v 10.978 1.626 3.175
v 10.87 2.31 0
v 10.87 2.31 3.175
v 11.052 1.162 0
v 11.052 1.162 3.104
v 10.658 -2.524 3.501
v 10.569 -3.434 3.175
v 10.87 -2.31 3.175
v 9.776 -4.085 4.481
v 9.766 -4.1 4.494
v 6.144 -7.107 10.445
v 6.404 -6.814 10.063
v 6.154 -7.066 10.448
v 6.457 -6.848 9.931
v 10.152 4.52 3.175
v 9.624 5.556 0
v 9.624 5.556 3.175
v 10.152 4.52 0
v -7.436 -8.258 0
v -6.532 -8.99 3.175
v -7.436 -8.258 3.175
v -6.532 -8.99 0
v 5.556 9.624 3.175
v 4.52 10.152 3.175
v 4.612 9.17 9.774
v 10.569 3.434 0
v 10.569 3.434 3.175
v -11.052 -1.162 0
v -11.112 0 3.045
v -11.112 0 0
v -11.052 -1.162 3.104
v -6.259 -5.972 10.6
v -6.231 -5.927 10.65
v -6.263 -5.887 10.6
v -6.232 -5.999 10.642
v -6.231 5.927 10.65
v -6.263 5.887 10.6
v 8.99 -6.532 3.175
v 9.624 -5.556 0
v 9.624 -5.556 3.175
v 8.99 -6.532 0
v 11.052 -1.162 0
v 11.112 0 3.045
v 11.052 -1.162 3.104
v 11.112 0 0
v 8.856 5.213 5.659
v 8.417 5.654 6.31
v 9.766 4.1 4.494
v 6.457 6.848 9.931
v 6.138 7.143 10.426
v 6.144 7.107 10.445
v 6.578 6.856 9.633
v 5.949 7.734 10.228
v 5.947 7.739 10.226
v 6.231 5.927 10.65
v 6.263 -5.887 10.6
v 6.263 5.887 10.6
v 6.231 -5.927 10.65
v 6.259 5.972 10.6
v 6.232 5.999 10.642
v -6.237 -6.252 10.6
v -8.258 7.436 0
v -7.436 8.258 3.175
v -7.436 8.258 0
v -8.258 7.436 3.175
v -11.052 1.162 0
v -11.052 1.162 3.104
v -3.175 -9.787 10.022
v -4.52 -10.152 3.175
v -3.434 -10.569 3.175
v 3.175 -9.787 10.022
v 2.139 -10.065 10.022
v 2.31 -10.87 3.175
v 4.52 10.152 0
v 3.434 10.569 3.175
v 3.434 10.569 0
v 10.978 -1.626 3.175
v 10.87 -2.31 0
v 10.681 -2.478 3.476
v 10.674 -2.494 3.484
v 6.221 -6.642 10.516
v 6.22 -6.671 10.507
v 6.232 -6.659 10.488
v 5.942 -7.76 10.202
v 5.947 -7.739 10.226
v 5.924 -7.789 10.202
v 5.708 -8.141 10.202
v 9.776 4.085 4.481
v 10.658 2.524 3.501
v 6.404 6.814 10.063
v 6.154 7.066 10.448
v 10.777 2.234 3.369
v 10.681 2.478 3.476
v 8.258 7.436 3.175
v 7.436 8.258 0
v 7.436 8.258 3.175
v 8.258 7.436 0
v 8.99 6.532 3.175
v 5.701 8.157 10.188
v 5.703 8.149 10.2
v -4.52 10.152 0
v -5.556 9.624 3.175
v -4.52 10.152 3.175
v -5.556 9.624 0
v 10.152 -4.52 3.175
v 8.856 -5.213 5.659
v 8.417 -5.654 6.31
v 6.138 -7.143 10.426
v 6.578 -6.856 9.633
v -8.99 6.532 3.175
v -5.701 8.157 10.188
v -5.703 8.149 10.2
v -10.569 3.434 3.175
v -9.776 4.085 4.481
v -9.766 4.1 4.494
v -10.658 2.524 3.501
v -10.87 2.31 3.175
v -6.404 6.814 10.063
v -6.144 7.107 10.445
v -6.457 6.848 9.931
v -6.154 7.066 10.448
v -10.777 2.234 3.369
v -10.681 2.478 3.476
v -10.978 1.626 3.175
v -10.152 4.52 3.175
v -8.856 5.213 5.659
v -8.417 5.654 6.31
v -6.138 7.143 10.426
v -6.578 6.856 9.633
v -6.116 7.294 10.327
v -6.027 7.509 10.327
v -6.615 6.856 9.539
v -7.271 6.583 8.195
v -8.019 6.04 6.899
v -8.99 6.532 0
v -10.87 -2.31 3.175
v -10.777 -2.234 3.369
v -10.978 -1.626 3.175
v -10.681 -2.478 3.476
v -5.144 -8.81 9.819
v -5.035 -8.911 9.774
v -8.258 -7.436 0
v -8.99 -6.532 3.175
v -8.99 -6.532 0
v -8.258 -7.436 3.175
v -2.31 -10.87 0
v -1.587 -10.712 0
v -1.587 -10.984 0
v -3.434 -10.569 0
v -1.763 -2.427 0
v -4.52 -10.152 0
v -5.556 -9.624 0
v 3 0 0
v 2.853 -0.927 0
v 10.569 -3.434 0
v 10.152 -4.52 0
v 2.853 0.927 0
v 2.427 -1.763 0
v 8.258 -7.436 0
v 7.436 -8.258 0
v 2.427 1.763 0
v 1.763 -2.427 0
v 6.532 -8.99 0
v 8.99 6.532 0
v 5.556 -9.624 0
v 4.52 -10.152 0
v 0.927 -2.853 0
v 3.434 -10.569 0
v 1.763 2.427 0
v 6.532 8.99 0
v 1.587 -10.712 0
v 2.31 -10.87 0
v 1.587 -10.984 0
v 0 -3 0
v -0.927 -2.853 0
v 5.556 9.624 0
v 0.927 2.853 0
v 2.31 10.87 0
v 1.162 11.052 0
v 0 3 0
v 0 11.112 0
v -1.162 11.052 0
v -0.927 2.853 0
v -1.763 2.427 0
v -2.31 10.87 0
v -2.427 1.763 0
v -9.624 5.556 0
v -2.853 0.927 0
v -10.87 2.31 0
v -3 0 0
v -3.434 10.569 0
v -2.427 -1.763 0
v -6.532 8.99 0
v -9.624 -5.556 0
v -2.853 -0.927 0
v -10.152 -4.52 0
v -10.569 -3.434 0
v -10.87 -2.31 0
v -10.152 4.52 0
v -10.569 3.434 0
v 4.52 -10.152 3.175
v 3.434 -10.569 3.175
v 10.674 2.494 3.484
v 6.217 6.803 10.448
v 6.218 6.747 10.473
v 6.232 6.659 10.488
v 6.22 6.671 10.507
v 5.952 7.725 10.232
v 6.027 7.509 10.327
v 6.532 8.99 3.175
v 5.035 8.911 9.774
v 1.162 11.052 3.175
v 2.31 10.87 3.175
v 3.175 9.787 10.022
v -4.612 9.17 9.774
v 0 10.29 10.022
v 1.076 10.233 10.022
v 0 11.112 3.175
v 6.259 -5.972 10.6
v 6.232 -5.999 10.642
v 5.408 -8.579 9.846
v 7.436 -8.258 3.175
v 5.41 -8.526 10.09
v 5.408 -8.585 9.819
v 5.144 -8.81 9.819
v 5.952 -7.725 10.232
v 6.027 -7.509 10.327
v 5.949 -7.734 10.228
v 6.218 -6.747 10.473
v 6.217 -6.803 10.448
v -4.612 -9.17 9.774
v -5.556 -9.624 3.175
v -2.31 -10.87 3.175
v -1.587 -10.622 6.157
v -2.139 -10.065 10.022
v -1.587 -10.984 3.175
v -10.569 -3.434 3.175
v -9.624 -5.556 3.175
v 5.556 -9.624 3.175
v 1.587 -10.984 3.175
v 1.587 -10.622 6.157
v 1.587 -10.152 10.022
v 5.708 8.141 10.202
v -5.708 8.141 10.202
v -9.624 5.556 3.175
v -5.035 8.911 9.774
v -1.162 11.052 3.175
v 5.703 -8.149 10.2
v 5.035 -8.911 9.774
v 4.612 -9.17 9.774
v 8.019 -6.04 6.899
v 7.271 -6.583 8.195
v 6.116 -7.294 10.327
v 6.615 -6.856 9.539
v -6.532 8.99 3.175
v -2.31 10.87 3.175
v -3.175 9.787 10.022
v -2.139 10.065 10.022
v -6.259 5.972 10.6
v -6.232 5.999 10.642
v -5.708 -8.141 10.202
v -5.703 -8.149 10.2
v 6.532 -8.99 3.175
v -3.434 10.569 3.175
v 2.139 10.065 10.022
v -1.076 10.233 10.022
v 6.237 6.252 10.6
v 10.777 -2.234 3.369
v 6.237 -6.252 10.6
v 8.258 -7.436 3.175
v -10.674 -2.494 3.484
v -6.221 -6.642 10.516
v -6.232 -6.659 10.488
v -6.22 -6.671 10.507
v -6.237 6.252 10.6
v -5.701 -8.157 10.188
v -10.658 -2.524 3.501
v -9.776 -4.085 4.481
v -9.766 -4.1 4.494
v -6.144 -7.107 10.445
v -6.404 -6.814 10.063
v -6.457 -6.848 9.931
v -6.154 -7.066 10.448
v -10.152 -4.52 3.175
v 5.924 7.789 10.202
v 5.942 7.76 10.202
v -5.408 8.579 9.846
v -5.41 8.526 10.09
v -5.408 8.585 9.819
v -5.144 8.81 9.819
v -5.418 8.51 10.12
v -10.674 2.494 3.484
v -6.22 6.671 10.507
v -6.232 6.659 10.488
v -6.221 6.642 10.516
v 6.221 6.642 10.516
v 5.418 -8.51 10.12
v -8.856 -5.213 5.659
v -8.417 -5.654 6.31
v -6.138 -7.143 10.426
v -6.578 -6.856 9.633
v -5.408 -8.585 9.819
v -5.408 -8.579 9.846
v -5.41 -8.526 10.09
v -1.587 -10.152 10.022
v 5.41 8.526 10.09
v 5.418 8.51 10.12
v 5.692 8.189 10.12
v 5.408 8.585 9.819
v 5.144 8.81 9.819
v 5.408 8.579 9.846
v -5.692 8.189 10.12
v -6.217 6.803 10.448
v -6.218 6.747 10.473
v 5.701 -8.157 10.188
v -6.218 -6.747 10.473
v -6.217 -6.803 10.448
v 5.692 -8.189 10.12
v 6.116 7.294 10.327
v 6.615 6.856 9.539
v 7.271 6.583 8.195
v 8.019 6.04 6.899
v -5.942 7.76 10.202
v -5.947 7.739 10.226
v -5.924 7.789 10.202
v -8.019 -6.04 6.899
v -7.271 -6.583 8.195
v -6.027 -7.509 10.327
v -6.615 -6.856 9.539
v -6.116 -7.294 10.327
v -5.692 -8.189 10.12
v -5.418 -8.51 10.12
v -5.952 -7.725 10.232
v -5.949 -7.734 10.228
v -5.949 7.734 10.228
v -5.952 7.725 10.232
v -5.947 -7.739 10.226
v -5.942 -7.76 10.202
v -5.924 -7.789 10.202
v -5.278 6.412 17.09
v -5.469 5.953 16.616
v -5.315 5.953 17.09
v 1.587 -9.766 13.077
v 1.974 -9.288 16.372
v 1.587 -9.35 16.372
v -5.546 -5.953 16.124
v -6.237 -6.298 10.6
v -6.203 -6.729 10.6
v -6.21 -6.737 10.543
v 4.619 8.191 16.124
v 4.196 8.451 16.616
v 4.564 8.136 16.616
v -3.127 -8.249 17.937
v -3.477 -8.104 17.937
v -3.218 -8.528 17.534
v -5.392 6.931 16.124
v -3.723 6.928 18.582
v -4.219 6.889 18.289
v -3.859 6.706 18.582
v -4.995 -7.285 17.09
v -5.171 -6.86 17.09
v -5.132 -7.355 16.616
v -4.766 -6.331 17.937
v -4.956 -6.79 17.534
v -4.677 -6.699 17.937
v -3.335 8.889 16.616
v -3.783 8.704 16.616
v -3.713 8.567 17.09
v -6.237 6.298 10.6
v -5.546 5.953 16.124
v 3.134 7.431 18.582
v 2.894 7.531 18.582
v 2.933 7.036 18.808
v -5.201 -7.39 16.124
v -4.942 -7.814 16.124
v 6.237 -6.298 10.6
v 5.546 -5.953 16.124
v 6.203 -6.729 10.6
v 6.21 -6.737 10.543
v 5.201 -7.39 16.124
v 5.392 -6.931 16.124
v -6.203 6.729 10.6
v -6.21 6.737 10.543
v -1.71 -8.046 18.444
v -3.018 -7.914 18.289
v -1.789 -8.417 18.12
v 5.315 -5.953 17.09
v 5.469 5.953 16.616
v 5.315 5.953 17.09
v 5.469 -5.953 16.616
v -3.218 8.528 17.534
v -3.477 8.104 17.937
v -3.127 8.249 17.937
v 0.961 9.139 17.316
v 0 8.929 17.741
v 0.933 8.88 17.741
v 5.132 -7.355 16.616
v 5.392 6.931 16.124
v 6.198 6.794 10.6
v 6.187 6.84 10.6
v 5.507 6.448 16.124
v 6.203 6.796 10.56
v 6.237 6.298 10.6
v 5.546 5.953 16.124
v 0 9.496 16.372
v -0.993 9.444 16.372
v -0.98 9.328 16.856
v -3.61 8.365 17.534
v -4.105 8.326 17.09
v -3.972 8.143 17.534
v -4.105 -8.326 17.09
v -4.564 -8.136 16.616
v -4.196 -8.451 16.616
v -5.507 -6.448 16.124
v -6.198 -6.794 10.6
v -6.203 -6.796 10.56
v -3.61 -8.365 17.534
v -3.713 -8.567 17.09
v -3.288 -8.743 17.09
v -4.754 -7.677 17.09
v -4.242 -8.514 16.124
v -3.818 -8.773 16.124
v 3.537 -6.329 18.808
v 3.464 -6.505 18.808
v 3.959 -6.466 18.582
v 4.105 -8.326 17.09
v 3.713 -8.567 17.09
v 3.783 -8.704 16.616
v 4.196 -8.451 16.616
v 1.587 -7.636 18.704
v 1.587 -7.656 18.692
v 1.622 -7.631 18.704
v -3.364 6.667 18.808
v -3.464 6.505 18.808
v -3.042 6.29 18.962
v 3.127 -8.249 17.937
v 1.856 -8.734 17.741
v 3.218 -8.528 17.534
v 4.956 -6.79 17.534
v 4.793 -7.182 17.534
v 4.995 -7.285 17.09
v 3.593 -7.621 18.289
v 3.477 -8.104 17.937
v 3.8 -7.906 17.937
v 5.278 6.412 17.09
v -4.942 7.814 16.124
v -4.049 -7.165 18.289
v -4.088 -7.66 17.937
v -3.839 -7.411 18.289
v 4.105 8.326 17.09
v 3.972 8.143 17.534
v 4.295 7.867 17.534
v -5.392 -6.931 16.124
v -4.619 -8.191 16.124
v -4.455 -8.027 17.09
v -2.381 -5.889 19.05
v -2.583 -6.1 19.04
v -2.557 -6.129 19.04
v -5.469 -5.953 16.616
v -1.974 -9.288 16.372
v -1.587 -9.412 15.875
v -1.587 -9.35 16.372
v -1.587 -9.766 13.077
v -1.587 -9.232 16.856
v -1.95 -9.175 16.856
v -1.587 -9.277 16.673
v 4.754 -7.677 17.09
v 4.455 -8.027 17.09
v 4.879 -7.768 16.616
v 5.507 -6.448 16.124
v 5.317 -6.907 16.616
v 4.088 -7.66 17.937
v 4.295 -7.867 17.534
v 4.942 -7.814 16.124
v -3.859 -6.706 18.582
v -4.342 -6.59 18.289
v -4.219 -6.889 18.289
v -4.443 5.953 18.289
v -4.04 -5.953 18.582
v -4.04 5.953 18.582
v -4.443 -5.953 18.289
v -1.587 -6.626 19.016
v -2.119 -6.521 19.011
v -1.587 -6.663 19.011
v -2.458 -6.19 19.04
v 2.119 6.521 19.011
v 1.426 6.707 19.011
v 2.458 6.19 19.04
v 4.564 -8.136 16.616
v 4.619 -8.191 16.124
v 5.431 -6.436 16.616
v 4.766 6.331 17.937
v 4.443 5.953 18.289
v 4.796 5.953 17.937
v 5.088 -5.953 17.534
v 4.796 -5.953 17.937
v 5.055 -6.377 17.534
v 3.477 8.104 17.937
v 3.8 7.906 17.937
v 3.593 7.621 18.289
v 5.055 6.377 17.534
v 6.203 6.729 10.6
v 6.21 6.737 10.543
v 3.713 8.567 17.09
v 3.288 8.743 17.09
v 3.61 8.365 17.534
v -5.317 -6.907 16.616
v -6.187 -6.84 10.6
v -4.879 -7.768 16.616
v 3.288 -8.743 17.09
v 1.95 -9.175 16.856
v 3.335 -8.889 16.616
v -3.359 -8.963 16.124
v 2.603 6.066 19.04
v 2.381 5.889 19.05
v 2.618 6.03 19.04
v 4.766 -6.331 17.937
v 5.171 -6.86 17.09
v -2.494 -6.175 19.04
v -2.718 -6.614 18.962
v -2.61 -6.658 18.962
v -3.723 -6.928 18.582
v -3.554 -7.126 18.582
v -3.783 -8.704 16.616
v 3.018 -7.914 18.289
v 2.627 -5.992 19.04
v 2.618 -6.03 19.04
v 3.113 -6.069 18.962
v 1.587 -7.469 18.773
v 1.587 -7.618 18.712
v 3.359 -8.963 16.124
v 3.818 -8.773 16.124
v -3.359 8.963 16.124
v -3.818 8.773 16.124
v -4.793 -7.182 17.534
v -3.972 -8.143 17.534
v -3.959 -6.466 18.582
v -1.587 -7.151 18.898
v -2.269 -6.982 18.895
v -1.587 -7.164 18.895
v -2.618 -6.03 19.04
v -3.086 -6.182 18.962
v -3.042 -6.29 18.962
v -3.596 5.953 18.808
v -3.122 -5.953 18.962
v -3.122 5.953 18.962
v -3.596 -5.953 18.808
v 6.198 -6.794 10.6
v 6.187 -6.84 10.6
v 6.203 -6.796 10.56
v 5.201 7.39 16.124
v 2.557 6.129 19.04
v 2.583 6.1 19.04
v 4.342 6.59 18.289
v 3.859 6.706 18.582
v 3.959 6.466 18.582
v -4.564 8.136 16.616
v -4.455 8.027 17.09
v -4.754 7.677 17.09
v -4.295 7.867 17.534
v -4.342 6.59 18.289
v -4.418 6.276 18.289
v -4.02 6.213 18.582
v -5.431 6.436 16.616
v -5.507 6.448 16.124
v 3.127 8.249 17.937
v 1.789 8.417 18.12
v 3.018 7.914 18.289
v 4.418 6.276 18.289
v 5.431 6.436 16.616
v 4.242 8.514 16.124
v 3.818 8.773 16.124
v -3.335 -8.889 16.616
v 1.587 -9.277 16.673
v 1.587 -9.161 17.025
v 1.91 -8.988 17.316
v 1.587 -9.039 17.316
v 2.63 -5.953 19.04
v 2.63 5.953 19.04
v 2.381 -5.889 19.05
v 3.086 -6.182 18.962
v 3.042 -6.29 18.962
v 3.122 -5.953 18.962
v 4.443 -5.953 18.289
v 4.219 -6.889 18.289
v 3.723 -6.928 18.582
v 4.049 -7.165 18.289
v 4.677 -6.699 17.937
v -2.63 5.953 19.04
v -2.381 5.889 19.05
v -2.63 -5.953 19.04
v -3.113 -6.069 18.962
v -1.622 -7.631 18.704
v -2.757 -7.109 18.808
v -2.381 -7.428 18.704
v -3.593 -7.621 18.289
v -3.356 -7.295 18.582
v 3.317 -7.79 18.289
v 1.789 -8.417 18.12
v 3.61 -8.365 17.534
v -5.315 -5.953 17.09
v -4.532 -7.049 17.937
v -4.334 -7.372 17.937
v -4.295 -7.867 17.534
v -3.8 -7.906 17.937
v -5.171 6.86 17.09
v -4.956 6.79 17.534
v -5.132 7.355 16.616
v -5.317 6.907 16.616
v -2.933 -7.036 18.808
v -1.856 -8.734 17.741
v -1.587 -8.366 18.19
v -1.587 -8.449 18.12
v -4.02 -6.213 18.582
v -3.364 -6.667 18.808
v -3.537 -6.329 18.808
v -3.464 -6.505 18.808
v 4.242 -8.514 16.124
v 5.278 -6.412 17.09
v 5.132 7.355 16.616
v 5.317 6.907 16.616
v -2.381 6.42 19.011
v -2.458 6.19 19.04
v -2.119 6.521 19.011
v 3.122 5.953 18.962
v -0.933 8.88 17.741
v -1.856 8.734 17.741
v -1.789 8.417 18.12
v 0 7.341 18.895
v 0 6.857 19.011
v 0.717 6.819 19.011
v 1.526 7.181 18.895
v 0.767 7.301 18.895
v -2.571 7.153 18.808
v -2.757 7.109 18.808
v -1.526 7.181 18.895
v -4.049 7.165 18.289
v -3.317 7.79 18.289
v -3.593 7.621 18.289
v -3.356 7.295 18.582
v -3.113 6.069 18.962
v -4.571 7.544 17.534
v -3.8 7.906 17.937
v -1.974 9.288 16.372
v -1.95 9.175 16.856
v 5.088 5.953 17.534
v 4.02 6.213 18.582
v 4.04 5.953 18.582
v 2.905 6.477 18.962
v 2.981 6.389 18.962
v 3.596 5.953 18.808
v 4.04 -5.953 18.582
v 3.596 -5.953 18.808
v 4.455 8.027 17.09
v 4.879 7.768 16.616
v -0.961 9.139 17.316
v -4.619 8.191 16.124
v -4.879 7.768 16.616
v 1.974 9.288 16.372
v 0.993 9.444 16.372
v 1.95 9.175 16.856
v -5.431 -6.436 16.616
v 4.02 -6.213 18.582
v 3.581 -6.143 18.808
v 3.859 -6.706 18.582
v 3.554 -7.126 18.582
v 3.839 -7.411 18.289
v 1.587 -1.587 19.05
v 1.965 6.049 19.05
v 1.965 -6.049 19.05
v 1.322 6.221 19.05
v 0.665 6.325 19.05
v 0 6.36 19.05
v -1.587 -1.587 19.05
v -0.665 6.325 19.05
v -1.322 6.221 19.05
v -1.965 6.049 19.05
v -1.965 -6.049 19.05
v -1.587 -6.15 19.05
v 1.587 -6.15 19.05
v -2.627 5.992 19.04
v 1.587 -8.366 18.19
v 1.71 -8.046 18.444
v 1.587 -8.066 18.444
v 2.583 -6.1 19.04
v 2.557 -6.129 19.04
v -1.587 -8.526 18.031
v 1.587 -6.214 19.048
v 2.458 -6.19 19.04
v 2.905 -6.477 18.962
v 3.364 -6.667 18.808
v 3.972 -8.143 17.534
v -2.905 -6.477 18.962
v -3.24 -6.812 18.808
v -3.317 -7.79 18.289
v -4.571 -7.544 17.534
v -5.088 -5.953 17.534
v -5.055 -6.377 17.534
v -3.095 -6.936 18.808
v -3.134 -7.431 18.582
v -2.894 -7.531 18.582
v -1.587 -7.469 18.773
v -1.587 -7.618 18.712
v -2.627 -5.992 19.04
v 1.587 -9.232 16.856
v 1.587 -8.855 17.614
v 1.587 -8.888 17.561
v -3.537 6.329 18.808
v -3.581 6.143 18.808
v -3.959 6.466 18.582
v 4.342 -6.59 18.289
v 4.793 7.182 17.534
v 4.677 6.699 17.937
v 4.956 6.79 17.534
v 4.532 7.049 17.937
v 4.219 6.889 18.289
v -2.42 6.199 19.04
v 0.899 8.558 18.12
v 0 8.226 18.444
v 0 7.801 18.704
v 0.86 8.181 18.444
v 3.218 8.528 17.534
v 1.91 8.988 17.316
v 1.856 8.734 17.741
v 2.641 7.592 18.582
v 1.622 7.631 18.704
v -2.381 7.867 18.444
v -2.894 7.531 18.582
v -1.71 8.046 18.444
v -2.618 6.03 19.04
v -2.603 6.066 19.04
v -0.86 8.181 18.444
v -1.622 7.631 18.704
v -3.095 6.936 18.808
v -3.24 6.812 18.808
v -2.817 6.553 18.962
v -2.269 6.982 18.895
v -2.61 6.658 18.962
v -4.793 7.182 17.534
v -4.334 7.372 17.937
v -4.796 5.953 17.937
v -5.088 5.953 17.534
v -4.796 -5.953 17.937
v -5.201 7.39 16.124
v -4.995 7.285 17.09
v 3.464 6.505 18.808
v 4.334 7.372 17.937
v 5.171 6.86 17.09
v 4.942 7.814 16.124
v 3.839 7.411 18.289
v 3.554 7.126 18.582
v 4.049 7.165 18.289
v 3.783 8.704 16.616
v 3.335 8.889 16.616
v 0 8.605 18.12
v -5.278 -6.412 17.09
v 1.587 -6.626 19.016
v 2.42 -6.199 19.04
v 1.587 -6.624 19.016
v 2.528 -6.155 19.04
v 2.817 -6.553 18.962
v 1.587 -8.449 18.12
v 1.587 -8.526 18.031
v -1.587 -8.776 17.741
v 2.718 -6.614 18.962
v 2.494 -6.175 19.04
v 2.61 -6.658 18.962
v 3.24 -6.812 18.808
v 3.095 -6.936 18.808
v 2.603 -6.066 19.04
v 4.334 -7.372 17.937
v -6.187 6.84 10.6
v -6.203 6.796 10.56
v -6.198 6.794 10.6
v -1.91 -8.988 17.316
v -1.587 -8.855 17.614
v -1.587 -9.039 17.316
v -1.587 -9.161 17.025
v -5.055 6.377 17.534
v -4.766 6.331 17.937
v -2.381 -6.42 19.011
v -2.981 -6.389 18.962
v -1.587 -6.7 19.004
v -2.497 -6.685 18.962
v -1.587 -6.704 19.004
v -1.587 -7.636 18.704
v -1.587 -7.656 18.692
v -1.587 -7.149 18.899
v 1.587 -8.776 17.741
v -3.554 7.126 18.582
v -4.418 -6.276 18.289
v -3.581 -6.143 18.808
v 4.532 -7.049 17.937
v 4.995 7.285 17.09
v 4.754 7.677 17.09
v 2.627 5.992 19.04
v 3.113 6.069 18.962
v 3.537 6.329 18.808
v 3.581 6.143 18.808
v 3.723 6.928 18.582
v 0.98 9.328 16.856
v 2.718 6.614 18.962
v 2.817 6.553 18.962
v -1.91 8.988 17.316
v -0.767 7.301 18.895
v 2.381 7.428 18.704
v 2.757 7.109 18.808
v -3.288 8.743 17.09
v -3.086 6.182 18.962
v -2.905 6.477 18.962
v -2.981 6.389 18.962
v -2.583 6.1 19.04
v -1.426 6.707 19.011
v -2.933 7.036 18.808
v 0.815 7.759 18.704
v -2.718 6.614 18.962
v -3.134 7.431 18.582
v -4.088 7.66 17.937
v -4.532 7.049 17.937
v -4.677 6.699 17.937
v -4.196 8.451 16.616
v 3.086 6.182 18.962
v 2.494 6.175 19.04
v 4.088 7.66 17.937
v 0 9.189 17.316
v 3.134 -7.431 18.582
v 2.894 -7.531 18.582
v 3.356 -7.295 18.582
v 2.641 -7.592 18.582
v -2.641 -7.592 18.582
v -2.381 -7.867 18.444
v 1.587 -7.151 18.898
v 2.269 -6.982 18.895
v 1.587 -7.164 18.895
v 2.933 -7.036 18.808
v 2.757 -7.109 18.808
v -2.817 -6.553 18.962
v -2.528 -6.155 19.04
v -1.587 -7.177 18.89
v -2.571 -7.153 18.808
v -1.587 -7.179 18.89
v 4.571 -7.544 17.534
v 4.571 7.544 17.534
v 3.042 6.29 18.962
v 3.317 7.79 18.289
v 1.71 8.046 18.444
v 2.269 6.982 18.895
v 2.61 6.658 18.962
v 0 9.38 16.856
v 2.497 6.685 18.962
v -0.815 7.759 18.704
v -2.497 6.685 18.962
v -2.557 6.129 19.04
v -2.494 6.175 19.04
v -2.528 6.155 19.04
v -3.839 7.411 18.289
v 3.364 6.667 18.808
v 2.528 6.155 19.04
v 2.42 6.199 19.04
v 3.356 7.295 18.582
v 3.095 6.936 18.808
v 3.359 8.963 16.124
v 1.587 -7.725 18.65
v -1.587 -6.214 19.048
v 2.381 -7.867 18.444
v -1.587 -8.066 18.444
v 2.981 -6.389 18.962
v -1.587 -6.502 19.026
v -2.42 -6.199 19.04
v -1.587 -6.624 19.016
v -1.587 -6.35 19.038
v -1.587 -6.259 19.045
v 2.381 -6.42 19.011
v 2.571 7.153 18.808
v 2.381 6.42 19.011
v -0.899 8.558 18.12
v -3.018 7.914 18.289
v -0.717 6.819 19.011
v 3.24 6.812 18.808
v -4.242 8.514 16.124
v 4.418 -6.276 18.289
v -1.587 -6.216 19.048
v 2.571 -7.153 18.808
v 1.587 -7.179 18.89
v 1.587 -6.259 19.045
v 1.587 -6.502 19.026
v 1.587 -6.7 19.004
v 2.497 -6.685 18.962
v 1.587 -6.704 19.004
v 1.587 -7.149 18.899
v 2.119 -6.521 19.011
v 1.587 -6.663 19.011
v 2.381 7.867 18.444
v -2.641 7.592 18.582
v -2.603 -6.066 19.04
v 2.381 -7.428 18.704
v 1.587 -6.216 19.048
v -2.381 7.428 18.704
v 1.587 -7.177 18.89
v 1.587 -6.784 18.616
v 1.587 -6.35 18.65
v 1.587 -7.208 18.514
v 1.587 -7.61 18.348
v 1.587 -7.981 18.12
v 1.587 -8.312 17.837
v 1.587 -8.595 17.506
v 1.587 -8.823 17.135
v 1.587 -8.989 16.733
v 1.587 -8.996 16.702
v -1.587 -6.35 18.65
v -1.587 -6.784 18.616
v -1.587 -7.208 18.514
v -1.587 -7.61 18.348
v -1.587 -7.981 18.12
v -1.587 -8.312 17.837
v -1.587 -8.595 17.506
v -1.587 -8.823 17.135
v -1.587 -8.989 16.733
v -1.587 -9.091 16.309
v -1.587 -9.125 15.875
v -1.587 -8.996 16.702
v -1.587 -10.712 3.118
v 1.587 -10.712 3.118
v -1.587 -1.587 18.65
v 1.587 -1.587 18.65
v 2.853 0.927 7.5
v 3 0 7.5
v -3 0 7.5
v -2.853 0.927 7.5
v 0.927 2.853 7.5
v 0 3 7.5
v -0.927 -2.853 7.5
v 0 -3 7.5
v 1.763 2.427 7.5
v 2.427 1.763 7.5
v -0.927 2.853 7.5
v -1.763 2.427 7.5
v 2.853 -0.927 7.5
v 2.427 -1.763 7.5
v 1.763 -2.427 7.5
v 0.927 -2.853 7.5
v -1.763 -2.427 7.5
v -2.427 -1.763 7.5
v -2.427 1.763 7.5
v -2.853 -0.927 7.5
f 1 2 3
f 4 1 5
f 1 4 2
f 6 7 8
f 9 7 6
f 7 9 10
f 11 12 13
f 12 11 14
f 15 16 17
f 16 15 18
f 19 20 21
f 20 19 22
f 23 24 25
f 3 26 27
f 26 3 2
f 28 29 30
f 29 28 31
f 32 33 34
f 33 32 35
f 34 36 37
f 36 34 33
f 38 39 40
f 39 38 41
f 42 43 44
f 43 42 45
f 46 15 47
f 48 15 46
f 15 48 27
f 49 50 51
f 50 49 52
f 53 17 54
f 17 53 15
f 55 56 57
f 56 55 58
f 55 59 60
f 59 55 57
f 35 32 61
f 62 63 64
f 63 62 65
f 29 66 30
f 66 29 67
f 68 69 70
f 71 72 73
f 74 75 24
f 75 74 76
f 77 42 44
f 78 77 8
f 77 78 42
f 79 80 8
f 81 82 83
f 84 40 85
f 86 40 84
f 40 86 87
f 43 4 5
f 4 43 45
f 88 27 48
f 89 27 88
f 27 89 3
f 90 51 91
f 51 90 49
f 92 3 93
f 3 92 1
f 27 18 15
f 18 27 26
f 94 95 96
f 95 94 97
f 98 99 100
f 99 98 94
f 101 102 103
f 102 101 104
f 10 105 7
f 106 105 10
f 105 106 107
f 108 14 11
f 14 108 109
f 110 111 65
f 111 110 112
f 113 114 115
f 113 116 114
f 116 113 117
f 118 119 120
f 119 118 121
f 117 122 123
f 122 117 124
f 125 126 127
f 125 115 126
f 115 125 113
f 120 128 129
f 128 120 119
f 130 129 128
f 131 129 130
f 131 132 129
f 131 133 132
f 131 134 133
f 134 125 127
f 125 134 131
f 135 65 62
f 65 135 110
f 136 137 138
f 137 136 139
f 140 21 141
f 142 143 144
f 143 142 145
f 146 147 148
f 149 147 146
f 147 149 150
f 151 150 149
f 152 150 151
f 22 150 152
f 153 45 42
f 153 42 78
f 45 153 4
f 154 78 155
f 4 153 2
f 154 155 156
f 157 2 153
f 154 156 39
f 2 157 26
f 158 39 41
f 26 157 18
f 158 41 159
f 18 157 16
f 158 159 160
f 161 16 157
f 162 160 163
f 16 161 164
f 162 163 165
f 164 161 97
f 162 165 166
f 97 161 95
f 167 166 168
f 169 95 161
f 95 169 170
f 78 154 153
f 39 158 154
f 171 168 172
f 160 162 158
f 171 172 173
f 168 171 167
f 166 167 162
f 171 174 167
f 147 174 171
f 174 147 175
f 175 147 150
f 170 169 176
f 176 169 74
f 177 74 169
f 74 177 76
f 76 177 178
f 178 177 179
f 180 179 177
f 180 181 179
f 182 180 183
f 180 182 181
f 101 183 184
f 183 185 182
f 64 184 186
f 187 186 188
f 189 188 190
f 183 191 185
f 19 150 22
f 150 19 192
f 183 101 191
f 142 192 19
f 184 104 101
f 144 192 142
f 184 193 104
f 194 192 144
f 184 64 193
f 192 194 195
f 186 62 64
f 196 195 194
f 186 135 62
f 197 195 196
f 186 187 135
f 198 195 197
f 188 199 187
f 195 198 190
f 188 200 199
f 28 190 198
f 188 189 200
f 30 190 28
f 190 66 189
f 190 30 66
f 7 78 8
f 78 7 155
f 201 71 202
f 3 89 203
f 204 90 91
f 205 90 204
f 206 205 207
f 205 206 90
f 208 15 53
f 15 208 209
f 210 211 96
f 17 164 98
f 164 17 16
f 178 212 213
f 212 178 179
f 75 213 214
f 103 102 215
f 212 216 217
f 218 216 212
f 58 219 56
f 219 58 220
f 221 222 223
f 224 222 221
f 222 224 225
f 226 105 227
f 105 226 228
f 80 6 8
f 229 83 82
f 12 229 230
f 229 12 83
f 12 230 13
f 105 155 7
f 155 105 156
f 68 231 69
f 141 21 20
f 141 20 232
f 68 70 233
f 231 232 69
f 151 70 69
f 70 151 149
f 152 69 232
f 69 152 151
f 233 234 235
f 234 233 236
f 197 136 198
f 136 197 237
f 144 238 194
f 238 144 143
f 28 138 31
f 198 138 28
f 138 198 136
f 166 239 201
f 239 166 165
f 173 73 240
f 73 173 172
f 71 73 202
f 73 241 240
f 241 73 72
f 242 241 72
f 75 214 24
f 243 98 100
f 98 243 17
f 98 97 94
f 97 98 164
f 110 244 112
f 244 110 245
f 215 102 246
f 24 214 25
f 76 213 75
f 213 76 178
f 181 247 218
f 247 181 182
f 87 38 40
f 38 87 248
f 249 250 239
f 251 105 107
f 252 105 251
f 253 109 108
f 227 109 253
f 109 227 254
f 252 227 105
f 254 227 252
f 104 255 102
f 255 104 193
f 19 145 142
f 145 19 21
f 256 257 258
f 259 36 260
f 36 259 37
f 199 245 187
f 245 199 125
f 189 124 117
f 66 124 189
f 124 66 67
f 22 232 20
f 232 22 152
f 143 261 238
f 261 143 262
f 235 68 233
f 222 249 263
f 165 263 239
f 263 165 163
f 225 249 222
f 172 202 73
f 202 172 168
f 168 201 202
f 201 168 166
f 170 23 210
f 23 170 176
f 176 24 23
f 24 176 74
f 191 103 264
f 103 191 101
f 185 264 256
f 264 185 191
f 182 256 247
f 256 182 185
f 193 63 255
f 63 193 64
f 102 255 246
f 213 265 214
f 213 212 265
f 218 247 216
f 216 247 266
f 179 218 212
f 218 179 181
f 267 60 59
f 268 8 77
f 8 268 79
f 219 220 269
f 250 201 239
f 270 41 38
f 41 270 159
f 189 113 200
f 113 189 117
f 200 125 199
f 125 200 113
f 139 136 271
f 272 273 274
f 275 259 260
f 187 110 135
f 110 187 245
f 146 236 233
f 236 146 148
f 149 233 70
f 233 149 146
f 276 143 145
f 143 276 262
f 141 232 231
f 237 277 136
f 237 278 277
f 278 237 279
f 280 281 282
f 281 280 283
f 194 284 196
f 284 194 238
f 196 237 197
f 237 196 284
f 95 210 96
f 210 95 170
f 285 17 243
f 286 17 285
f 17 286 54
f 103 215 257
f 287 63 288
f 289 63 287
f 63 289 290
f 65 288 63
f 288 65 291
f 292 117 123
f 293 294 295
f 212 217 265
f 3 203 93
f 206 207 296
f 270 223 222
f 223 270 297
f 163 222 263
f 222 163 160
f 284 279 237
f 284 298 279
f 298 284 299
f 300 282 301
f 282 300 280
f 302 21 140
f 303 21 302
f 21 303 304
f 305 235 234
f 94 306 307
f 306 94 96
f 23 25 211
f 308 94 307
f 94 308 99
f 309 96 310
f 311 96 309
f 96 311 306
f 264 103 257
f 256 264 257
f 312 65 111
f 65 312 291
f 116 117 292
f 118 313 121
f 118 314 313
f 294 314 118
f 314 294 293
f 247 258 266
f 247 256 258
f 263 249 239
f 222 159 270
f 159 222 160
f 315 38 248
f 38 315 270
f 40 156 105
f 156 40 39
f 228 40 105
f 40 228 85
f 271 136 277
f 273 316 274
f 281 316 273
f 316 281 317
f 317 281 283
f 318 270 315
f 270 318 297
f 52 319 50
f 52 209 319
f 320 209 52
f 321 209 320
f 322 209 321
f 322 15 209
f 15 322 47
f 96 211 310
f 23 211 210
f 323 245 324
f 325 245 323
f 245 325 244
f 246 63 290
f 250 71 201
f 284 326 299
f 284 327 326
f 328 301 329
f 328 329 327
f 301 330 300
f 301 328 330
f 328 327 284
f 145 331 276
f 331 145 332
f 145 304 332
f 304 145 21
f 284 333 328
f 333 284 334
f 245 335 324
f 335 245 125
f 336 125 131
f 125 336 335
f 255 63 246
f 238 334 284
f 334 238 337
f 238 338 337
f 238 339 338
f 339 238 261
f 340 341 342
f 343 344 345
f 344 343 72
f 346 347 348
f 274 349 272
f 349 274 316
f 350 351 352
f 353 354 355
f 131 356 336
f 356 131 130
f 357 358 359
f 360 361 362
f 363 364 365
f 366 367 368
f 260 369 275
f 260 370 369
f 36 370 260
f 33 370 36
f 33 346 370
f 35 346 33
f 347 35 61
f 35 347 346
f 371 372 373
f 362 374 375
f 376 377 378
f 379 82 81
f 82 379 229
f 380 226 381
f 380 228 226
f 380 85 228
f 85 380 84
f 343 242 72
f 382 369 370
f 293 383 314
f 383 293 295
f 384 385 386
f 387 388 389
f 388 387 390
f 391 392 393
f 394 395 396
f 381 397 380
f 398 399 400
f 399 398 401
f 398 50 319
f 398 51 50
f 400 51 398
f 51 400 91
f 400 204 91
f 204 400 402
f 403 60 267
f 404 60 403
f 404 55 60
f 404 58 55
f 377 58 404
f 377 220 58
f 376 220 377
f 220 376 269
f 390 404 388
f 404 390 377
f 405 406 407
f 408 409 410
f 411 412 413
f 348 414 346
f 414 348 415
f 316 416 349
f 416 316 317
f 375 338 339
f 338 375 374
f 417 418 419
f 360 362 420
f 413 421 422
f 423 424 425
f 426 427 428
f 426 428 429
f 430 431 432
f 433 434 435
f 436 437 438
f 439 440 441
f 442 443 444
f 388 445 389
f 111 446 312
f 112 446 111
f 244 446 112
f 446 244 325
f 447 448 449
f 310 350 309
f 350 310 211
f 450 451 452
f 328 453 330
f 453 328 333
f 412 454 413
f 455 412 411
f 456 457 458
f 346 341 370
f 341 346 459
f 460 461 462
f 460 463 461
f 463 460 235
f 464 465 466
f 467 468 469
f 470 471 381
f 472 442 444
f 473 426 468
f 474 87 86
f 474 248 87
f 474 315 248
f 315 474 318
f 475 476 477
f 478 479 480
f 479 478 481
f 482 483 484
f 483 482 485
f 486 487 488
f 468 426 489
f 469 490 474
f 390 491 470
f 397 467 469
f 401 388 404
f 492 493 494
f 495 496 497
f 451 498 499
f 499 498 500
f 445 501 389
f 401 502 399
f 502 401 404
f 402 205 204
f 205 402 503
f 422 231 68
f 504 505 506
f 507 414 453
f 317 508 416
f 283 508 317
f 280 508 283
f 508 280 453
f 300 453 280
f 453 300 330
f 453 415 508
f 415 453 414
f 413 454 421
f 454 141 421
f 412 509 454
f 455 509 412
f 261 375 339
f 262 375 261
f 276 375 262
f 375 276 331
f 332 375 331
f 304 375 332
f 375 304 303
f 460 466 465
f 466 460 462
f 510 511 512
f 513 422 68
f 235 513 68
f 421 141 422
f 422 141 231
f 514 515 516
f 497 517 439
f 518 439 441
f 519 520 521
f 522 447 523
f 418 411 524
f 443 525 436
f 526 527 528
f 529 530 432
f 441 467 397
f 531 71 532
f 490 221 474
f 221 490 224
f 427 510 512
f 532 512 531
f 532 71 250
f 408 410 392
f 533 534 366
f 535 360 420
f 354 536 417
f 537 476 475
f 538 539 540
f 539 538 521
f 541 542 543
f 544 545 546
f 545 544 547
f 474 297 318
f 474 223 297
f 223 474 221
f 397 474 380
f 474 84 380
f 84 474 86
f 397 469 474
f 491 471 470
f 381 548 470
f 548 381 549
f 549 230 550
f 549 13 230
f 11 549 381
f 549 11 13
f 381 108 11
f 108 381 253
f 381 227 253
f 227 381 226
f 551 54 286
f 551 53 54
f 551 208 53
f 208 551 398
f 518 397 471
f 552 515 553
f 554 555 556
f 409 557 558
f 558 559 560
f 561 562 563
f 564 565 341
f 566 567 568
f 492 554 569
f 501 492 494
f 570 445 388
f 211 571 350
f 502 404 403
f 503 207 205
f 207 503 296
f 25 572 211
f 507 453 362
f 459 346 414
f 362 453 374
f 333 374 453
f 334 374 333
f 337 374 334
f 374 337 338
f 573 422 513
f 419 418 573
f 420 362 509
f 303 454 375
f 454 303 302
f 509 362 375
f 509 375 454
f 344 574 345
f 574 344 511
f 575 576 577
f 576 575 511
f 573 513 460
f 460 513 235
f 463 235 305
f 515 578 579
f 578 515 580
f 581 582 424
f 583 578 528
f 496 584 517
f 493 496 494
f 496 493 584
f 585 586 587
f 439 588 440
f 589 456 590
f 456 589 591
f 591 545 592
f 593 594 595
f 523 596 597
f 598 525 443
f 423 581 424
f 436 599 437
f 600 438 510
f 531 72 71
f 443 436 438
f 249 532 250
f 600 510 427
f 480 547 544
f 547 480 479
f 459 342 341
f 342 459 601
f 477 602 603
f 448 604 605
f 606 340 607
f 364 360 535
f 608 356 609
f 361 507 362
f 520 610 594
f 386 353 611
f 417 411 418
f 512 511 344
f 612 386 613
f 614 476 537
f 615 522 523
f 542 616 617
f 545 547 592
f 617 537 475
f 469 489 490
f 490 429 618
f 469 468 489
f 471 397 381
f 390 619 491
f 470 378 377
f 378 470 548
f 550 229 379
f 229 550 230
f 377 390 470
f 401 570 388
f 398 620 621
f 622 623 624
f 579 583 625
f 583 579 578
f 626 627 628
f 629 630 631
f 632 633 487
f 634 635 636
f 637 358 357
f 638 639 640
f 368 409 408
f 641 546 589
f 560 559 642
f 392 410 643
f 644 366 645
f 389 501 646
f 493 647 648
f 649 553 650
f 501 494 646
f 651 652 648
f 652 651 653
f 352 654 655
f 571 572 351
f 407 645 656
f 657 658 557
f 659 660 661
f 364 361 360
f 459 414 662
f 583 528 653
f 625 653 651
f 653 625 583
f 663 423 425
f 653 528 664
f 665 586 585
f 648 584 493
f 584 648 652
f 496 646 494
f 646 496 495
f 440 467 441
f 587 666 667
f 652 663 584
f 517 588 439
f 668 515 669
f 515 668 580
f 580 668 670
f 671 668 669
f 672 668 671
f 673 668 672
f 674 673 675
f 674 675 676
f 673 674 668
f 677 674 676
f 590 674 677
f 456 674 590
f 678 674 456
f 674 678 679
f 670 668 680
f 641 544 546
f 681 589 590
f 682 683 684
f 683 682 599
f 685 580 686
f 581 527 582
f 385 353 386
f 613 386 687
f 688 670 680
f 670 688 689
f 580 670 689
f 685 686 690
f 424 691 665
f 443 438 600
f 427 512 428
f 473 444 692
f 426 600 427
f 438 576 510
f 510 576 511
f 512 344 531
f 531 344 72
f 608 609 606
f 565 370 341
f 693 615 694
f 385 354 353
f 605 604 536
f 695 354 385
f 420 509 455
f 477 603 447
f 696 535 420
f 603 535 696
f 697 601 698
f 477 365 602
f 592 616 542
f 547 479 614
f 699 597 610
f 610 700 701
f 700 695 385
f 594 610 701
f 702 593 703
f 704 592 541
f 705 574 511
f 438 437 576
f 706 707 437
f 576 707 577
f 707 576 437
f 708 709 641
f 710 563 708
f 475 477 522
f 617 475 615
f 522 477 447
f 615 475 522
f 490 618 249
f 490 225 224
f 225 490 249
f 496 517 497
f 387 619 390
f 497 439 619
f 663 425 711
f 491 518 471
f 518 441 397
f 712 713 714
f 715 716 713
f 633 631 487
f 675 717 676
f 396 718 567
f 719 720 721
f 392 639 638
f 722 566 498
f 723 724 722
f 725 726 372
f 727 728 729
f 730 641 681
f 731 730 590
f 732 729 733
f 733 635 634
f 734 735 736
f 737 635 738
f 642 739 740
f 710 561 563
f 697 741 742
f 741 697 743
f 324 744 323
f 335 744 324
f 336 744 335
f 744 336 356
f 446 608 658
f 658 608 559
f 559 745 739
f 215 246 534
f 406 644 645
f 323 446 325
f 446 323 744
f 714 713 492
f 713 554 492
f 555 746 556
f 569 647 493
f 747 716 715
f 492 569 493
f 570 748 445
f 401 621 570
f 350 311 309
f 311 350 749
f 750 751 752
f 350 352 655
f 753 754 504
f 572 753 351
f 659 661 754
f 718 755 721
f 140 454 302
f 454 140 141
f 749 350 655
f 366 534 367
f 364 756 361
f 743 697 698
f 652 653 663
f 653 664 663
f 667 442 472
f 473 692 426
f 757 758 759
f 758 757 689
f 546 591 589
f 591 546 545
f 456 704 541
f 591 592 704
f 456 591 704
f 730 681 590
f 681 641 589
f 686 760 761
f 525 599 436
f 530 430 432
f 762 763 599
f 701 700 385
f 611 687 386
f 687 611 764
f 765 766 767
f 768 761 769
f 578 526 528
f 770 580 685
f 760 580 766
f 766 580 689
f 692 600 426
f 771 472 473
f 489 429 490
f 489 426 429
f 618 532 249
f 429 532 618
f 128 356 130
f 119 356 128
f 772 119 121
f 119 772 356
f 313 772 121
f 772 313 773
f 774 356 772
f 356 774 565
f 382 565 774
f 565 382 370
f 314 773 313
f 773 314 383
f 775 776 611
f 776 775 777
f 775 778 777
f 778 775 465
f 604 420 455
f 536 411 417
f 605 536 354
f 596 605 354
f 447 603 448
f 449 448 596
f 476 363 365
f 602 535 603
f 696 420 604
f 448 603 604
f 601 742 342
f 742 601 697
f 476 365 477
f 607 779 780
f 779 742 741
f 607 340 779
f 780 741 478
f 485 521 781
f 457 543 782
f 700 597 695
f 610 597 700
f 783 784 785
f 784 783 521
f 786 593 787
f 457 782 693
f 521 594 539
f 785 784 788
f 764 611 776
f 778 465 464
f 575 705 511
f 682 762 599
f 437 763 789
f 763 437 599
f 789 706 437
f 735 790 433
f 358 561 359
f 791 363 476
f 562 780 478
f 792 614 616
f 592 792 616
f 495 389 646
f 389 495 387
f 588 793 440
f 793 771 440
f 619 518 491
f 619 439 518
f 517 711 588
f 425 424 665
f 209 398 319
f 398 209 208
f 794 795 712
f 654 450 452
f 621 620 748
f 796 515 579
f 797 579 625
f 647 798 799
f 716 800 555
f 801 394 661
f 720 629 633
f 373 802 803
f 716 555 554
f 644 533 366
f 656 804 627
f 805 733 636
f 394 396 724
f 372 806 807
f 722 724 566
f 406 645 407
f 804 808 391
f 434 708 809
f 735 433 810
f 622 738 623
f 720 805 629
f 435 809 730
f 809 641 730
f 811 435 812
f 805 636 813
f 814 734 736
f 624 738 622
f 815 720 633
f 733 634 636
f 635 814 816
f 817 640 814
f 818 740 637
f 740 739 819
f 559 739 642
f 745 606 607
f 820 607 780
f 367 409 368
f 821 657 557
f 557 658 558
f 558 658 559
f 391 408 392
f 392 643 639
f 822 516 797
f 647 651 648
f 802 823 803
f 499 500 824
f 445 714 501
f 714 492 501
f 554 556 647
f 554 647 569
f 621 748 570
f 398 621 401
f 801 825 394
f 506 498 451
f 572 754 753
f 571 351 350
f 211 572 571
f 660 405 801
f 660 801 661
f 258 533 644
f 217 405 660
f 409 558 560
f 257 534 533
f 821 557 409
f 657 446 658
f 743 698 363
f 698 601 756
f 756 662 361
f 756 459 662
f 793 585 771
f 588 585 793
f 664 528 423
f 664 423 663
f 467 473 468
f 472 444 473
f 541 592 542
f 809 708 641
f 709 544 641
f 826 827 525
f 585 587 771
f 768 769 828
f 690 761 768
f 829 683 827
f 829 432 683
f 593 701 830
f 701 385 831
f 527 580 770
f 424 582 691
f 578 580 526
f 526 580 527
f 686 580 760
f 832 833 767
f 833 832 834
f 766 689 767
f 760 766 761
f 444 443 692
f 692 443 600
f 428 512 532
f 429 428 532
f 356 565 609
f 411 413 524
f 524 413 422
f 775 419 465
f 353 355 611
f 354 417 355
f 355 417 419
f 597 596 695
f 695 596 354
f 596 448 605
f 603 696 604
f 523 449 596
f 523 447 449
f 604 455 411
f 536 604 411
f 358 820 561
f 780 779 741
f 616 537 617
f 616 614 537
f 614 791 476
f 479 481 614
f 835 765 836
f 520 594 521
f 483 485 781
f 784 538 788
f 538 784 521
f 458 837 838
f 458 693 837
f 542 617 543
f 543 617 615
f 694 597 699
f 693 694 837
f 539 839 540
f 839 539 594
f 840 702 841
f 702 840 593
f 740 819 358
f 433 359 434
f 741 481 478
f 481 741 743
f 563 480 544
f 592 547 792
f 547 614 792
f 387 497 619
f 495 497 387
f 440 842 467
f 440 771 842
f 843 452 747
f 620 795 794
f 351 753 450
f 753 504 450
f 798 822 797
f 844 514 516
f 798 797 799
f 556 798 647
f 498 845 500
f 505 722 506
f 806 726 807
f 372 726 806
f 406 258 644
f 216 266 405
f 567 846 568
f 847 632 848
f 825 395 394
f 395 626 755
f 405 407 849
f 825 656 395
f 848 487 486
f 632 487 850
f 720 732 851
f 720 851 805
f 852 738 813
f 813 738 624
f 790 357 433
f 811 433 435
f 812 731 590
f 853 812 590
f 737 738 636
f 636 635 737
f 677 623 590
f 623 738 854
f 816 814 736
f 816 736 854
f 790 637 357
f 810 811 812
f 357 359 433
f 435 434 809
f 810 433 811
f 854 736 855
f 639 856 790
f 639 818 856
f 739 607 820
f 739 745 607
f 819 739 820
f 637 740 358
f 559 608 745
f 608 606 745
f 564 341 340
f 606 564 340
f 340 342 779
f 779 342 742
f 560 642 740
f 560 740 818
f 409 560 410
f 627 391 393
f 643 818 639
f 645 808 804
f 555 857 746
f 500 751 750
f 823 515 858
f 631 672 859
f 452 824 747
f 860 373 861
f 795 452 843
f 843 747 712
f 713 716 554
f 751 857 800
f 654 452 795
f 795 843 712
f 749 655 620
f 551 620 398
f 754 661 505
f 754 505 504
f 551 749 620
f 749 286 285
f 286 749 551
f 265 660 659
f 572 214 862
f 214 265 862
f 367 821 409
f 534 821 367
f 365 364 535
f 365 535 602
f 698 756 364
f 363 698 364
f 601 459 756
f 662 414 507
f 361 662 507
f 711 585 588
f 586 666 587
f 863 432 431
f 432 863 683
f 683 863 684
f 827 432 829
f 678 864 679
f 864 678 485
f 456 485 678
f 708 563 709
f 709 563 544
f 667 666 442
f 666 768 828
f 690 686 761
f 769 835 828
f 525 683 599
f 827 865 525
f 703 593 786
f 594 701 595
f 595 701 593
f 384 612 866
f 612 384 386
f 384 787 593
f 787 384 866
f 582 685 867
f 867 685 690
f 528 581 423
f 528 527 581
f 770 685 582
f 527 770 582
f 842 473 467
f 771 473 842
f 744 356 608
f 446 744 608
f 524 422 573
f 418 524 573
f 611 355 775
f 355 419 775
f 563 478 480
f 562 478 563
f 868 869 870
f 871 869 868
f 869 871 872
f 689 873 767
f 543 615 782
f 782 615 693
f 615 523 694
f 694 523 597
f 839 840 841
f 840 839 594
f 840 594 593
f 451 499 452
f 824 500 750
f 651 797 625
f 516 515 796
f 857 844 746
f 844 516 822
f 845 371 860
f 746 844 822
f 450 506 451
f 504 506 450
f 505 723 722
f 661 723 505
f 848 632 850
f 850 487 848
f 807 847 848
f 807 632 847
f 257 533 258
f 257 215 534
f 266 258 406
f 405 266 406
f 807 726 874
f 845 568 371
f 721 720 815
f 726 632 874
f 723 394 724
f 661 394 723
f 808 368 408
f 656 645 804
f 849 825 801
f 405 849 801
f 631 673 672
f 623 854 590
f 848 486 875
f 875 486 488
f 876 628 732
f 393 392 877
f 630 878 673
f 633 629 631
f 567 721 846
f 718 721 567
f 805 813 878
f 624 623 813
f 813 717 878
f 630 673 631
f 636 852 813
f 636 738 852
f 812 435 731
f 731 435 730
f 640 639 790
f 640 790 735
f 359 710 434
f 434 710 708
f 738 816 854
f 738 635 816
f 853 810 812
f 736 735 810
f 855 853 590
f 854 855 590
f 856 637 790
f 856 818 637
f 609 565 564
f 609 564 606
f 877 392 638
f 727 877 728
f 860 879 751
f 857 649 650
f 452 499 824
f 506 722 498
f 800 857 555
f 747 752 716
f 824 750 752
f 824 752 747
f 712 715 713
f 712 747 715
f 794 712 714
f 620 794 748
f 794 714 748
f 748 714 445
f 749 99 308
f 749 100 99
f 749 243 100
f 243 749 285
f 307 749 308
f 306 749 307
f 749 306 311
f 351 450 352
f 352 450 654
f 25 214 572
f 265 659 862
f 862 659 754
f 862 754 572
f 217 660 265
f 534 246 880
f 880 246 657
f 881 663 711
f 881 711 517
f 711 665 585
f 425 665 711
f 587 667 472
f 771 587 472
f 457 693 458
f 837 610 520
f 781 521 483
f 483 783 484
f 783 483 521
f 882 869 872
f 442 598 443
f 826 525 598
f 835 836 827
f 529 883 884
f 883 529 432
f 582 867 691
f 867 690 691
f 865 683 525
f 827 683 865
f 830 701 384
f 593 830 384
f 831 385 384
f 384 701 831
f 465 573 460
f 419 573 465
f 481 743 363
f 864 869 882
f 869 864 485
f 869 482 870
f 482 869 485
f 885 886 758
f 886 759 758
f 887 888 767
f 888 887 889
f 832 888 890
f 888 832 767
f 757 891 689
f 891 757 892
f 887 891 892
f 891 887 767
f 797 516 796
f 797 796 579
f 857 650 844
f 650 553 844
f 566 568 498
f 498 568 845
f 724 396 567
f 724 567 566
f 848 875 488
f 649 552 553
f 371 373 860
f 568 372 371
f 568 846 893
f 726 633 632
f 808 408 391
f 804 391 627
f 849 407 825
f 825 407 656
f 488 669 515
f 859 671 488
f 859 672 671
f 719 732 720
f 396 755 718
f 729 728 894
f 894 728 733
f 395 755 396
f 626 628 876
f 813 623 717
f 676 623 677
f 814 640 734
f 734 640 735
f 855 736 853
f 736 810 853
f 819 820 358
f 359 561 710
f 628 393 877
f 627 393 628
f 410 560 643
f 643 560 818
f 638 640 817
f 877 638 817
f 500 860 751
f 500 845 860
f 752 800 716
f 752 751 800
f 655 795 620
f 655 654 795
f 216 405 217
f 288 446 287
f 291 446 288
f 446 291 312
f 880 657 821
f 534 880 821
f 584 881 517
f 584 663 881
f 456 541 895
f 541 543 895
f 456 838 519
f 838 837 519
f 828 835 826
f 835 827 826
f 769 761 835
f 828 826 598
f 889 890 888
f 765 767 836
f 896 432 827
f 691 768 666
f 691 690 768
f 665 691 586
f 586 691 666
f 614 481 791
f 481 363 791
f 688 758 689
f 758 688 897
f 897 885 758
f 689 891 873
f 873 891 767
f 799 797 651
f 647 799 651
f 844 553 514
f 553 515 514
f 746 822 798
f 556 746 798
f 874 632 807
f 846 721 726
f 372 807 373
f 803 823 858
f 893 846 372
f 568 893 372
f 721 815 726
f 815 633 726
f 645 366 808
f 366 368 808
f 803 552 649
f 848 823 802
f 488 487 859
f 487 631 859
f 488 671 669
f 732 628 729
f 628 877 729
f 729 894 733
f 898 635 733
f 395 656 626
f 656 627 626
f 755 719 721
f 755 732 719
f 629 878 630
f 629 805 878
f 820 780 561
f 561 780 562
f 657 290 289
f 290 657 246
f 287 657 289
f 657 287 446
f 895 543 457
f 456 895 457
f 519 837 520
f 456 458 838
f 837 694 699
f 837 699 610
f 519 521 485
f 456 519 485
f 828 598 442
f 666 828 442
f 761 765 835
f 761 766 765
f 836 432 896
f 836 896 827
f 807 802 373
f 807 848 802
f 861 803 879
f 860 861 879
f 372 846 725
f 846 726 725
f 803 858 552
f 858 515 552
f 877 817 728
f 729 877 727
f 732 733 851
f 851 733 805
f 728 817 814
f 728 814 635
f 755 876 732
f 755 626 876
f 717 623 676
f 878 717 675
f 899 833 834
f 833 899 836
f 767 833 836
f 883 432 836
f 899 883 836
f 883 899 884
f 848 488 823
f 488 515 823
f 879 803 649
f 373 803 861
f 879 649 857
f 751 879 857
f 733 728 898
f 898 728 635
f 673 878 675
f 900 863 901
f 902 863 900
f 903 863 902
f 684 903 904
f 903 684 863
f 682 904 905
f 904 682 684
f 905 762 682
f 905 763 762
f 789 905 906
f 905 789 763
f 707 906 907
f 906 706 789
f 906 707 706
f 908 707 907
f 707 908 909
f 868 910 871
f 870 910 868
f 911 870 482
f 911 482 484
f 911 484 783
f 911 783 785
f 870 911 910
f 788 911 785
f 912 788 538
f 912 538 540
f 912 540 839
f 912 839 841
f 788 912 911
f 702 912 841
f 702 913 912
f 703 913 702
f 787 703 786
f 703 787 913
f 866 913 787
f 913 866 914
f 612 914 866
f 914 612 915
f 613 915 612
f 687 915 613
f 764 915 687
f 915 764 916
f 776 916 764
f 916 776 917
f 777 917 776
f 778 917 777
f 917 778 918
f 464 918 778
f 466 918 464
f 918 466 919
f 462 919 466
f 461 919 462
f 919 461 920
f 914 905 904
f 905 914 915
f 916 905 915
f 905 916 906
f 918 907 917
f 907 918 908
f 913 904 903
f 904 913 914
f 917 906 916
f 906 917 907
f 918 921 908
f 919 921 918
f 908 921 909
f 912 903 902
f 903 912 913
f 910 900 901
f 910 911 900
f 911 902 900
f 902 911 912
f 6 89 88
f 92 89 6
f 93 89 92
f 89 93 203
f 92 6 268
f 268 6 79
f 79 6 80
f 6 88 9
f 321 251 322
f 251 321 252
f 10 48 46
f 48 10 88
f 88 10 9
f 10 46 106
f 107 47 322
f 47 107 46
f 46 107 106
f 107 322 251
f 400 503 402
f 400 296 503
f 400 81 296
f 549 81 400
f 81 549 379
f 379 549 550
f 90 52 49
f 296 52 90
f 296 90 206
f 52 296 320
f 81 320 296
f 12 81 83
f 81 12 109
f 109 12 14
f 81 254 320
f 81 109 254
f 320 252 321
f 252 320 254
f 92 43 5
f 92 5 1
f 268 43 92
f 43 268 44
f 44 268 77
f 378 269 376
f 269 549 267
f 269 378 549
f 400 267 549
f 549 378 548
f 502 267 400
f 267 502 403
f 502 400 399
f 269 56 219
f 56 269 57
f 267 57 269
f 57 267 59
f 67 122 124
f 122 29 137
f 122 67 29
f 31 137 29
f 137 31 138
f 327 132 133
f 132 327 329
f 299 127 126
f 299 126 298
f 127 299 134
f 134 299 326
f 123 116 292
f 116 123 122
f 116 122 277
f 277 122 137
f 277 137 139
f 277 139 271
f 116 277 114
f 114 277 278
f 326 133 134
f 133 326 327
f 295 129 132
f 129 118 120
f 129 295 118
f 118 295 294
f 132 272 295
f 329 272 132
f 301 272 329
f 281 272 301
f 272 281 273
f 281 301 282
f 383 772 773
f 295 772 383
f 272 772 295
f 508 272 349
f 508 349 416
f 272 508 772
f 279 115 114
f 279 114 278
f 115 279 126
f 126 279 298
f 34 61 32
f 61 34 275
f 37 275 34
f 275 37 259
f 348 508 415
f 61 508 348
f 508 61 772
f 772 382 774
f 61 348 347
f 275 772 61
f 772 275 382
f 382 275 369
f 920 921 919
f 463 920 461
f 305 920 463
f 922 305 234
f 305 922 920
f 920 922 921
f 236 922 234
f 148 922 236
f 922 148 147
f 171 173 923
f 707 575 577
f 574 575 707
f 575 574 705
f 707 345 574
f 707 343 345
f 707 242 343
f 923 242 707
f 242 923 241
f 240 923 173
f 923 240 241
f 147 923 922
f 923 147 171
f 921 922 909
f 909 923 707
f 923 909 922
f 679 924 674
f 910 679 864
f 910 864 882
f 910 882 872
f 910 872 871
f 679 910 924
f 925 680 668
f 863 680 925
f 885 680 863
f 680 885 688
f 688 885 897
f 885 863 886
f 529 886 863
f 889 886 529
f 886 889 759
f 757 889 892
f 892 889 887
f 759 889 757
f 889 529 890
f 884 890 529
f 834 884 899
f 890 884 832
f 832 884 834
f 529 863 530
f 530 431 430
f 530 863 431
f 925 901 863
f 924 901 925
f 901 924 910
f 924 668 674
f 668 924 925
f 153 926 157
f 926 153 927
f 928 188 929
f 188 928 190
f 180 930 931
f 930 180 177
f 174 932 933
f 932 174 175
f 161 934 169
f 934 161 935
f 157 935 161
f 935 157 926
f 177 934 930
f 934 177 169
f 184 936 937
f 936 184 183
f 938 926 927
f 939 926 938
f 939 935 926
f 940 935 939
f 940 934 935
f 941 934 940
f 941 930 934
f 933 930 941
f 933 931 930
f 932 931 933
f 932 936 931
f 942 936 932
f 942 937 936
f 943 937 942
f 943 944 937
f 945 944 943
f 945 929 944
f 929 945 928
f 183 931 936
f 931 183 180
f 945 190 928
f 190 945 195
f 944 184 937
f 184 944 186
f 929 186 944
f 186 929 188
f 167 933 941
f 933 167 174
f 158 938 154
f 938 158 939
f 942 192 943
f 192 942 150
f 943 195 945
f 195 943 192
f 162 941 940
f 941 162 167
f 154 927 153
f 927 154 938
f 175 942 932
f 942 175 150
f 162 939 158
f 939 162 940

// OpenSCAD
// Based on https://ehcknobs.com/tl8503.html

module torus(major_r, minor_r, theta=360){
    // Edge rounding using a torus
    rotate_extrude(angle=theta, convexity=10, $fn=60)
    translate([major_r+0.01, 0, 0])
    circle(r=minor_r, $fn=40);
}

function to_mm(x) = x * 25.4;

module tl8503(){
  difference(){
    union(){
  hull() {
  // Base
  cylinder(d=to_mm(7/8),h=to_mm(1/8),$fn=60);


  translate([0,0,to_mm((1/2)-(1/8))])  
  intersection(){
    torus(to_mm((3/4)-(1/8)-(1/16))/2,to_mm(1/8));
    translate([to_mm(-4/32),-to_mm(7/8)/2,-to_mm(1/8)])
    cube([to_mm(4/16),to_mm(7/8),to_mm(1/8)*2]);
  }
  
     // Lower finger grip left 
   translate([-to_mm(4/32),-to_mm((1/2))/2,to_mm((1/2)-(1/8))])
  sphere(r=to_mm(1/8),$fn=40);
  translate([-to_mm(4/32),to_mm((1/2))/2,to_mm((1/2)-(1/8))])
  sphere(r=to_mm(1/8),$fn=40);
   // Lower finger grip right 
   translate([to_mm(4/32),-to_mm((1/2))/2,to_mm((1/2)-(1/8))])
  sphere(r=to_mm(1/8),$fn=40);
  translate([to_mm(4/32),to_mm((1/2))/2,to_mm((1/2)-(1/8))])
  sphere(r=to_mm(1/8),$fn=40);

  }
  
  // Rounded top
  hull(){
  translate([0,0,to_mm((3/4)-(1/8))])  
  intersection(){
    torus(to_mm((3/4)-(1/8)-(1/8))/2,to_mm(1/8));
    translate([to_mm(-3/32),-to_mm(7/8)/2,-to_mm(1/8)])
    cube([to_mm(3/16),to_mm(7/8),to_mm(1/8)*2]);
  }

  // Top edge right
    hull(){
  translate([to_mm(3/32),-to_mm((1/2)-(1/32))/2,to_mm((3/4)-(1/8))])
  sphere(r=to_mm(1/8),$fn=40);
  translate([to_mm(3/32),to_mm((1/2)-(1/32))/2,to_mm((3/4)-(1/8))])
  sphere(r=to_mm(1/8),$fn=40);
    }
  // Top edge left
    hull(){
  translate([-to_mm(3/32),-to_mm((1/2)-(1/32))/2,to_mm((3/4)-(1/8))])
  sphere(r=to_mm(1/8),$fn=40);
  translate([-to_mm(3/32),to_mm((1/2)-(1/32))/2,to_mm((3/4)-(1/8))])
  sphere(r=to_mm(1/8),$fn=40);
    }
    hull(){
        translate([0,0,to_mm((1/2)-(1/8))])  
  intersection(){
    torus(to_mm((3/4)-(1/8)-(1/16))/2,to_mm(1/8));
    translate([to_mm(-4/32),-to_mm(7/8)/2,-to_mm(1/8)])
    cube([to_mm(4/16),to_mm(7/8),to_mm(1/8)*2]);
  }

   // Lower finger grip left 
   translate([-to_mm(4/32),-to_mm((1/2))/2,to_mm((1/2)-(1/8))])
  sphere(r=to_mm(1/8),$fn=40);
  translate([-to_mm(4/32),to_mm((1/2))/2,to_mm((1/2)-(1/8))])
  sphere(r=to_mm(1/8),$fn=40);
   // Lower finger grip right 
   translate([to_mm(4/32),-to_mm((1/2))/2,to_mm((1/2)-(1/8))])
  sphere(r=to_mm(1/8),$fn=40);
  translate([to_mm(4/32),to_mm((1/2))/2,to_mm((1/2)-(1/8))])
  sphere(r=to_mm(1/8),$fn=40);
}  
 }  // hull() 
 } // union()

  // Inset for label
  // Base
  translate([-to_mm(1/16),(-to_mm(7/8)/2)-0.5,0])
  cube([to_mm(1/8),0.5+0.4,5]);
  // Front slope
  translate([-to_mm(1/16),(-to_mm(7/8)/2)-0.5,to_mm(1/8)])
  rotate([-7.2,0,0])
  cube([to_mm(1/8),0.5+0.4,20]);
  // Top. Starts ~1/16" away from centre.
  translate([-to_mm(1/16),(-to_mm(7/8)/2),to_mm(3/4)-0.4])
  cube([to_mm(1/8),to_mm((7/16)-(1/16)),5]);
  // Top edge
  translate([-to_mm(1/16),(-to_mm(3/4)/2)+to_mm(1/8),to_mm((3/4)-(1/8))])
  rotate([0,90,0])
  difference(){
    cylinder(r=to_mm(1/8)+0.5,h=to_mm(1/8),$fn=20);
    cylinder(r=to_mm(1/8)-0.4,h=to_mm(1/8),$fn=40);
    translate([-5,0,0])
    cube([10,10,10]);
    translate([0,-5,0])
    cube([10,10,10]);
  }
  difference(){
    translate([to_mm(66/64),-20,to_mm(46/64)])
  rotate([-90,0,0])
  cylinder(r=to_mm(27/32),h=40,$fn=90);
  translate([0,-40,10.6])
   cube([80,80,80]);
  }
  difference(){
    translate([-to_mm(66/64),-20,to_mm(46/64)])
  rotate([-90,0,0])
  cylinder(r=to_mm(27/32),h=40,$fn=90);
  translate([-80,-40,10.6])
   cube([80,80,80]);
  }

  /*
  difference(){
  translate([to_mm(30/32),0,to_mm(24/32)])
  sphere(r=to_mm(26/32),$fn=60);
  translate([0,-40,10.6])
   cube([80,80,80]);
  }
  */
  } // difference()
} // module()

difference(){
  tl8503();
  // Remove 6mm hole for switch
  translate([0,0,0])
  cylinder(d=6,h=7.5,$fn=20);
}
